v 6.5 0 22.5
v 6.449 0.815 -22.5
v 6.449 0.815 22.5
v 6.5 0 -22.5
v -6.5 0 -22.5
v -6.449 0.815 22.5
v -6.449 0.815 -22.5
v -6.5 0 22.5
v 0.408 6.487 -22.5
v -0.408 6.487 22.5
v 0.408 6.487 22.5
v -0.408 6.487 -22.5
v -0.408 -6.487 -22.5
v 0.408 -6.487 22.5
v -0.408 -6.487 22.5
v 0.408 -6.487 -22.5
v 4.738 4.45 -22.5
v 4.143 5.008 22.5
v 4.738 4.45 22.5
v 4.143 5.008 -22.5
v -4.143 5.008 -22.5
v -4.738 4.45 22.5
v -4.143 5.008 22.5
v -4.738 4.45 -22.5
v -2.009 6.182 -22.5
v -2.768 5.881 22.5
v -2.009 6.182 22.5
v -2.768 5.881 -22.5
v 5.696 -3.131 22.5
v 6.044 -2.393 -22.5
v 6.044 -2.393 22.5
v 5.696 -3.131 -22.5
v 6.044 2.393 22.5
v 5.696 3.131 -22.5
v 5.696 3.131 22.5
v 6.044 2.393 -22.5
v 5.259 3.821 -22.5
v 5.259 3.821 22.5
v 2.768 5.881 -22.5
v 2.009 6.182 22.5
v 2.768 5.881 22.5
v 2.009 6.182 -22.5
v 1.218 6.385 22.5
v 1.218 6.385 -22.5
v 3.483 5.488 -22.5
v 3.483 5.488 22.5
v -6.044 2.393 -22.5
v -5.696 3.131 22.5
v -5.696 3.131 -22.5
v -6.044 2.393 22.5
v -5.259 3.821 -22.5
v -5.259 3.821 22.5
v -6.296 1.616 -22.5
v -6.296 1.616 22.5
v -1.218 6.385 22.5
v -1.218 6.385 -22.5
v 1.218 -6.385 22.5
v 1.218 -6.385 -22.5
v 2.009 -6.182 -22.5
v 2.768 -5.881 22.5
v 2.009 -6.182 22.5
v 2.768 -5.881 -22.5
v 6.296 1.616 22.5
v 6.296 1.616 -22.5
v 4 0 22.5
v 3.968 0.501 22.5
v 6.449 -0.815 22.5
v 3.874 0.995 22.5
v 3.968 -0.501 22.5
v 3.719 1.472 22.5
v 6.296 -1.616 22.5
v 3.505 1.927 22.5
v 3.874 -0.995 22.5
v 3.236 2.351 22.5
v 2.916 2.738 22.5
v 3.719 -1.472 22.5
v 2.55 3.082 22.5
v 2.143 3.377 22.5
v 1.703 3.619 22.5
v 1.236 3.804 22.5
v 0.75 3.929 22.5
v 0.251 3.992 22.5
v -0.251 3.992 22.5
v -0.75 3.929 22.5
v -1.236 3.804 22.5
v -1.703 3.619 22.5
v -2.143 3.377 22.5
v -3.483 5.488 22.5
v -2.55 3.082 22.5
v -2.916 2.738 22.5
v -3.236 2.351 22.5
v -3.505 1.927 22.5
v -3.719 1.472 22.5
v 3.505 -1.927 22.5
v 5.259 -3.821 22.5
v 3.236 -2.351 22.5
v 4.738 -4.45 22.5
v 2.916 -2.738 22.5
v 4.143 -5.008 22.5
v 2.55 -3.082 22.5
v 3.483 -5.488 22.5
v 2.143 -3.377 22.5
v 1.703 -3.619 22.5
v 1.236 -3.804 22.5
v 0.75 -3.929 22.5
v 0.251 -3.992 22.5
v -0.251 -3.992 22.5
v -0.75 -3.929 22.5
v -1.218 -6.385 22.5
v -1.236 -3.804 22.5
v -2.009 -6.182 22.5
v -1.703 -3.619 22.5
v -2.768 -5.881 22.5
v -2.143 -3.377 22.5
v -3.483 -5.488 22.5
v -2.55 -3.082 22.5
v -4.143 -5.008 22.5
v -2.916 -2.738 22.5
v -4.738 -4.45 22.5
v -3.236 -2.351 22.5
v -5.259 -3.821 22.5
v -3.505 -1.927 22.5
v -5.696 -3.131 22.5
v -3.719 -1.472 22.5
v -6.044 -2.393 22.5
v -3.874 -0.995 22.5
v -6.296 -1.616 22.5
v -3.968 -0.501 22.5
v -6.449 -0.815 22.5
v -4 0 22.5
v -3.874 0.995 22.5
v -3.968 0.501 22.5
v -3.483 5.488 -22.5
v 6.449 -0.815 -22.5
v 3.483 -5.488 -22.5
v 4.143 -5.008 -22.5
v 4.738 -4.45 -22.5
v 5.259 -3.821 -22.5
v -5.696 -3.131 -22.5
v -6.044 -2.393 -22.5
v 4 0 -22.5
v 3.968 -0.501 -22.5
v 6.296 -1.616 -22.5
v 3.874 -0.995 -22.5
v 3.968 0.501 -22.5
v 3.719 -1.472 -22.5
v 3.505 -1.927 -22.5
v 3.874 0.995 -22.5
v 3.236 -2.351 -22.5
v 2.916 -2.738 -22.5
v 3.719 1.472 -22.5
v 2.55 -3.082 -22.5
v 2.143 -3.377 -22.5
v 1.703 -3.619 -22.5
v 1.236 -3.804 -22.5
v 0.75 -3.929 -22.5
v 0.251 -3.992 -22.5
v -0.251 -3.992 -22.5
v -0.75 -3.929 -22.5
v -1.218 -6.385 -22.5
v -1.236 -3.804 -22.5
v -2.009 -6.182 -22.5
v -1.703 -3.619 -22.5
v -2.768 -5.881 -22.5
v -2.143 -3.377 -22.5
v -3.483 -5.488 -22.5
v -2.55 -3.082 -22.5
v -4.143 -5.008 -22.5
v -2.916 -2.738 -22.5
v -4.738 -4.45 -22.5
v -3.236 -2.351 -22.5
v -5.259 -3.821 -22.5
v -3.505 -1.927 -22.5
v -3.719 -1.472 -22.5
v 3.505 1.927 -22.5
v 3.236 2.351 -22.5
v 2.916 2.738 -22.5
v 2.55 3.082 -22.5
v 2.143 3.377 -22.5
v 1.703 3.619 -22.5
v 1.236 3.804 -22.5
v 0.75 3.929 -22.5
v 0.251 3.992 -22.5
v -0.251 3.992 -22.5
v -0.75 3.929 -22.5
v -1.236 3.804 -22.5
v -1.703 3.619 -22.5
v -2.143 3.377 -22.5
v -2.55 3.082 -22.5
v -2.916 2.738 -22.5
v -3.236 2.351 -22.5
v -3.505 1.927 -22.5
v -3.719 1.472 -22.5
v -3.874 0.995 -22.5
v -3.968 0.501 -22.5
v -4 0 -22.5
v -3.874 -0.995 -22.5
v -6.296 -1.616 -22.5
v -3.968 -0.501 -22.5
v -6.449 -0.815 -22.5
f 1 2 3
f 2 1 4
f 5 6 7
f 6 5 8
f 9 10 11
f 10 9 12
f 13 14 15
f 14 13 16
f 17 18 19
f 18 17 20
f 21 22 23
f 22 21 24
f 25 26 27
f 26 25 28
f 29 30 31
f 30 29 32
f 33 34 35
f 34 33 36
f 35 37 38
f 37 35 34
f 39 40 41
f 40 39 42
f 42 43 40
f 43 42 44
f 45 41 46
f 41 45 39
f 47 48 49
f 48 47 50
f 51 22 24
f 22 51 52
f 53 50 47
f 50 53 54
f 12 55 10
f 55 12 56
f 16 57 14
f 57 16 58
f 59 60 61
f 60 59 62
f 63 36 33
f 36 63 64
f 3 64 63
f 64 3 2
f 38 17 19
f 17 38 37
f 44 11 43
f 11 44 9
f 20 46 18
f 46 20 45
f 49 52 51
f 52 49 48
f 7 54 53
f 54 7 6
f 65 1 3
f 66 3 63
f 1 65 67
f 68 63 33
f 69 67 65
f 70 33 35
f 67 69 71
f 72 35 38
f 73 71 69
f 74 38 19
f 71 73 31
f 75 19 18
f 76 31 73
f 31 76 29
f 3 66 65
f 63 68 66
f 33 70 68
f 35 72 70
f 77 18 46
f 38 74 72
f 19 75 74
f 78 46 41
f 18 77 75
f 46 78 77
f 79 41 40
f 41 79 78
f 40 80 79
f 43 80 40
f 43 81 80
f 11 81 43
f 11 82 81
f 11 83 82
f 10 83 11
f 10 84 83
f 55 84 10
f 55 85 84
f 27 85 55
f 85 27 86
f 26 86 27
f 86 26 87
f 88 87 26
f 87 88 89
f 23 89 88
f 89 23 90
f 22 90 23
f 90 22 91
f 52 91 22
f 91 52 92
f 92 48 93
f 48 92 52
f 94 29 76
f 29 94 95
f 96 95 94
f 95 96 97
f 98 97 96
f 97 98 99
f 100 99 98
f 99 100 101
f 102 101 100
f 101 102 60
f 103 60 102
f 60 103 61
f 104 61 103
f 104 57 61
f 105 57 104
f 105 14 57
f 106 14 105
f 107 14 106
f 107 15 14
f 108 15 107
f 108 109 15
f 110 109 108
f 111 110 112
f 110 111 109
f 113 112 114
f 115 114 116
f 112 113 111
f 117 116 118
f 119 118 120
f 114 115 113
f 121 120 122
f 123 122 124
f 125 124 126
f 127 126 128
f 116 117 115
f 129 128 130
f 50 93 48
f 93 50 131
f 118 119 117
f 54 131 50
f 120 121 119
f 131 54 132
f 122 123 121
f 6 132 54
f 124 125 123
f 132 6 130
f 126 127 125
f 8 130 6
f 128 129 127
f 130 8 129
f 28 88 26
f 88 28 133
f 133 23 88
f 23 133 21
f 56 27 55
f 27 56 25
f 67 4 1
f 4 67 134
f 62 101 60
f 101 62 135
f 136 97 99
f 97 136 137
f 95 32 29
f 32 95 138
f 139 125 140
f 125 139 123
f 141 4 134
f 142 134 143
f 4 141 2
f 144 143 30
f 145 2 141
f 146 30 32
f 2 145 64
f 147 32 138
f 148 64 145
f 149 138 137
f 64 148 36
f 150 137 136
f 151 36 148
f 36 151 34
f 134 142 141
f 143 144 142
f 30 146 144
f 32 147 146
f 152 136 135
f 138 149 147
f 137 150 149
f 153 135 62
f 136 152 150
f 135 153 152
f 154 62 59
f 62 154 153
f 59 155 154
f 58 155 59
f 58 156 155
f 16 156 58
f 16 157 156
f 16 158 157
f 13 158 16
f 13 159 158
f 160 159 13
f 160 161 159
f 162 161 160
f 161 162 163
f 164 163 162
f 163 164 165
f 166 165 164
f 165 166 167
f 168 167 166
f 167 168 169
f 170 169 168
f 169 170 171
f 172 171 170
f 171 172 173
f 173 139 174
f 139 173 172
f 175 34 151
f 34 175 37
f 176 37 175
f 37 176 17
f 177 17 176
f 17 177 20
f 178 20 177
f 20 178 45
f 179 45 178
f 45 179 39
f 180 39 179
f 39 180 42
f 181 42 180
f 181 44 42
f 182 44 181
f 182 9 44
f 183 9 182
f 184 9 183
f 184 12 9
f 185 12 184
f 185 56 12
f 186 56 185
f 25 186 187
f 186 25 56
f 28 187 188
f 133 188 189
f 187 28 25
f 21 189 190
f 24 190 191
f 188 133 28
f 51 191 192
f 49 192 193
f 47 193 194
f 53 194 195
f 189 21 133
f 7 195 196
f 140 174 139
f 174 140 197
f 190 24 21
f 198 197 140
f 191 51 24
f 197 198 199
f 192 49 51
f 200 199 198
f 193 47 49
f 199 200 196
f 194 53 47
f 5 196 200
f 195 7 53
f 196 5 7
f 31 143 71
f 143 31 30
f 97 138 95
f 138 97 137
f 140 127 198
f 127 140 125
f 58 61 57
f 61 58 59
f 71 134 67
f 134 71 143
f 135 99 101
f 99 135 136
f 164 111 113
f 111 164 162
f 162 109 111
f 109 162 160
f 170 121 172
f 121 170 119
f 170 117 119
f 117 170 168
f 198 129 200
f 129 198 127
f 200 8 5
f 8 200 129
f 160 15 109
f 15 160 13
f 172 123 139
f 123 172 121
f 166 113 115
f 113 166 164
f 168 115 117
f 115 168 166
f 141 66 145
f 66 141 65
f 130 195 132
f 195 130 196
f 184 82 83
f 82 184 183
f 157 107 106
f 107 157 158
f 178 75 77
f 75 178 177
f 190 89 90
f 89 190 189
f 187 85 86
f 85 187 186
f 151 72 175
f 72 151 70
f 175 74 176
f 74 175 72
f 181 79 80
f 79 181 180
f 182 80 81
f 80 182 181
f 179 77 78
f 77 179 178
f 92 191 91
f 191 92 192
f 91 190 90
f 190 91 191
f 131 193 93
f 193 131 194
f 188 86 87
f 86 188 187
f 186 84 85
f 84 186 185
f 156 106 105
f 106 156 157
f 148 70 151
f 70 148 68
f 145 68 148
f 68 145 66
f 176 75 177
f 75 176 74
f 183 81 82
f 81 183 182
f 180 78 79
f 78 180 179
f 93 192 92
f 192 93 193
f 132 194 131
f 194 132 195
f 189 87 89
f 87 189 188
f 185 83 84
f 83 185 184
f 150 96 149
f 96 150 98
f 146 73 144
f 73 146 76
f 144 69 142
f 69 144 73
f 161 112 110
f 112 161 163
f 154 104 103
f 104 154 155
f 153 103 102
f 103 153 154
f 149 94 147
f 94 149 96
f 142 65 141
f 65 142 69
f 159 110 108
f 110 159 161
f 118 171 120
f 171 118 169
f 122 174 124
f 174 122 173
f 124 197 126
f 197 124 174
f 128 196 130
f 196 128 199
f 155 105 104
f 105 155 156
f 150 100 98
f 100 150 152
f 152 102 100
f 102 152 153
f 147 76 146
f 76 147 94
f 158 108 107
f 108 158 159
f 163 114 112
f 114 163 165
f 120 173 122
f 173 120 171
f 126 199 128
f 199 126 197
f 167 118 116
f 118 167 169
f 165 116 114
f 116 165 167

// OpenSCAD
$fn = 50;


difference() {
	union() {
		translate(v = [0, 0, -22.5000000000]) {
			cylinder(h = 45, r = 6.5000000000);
		}
	}
	union() {
		translate(v = [0, 0, -100.0000000000]) {
			cylinder(h = 200, r = 4);
		}
	}
}
